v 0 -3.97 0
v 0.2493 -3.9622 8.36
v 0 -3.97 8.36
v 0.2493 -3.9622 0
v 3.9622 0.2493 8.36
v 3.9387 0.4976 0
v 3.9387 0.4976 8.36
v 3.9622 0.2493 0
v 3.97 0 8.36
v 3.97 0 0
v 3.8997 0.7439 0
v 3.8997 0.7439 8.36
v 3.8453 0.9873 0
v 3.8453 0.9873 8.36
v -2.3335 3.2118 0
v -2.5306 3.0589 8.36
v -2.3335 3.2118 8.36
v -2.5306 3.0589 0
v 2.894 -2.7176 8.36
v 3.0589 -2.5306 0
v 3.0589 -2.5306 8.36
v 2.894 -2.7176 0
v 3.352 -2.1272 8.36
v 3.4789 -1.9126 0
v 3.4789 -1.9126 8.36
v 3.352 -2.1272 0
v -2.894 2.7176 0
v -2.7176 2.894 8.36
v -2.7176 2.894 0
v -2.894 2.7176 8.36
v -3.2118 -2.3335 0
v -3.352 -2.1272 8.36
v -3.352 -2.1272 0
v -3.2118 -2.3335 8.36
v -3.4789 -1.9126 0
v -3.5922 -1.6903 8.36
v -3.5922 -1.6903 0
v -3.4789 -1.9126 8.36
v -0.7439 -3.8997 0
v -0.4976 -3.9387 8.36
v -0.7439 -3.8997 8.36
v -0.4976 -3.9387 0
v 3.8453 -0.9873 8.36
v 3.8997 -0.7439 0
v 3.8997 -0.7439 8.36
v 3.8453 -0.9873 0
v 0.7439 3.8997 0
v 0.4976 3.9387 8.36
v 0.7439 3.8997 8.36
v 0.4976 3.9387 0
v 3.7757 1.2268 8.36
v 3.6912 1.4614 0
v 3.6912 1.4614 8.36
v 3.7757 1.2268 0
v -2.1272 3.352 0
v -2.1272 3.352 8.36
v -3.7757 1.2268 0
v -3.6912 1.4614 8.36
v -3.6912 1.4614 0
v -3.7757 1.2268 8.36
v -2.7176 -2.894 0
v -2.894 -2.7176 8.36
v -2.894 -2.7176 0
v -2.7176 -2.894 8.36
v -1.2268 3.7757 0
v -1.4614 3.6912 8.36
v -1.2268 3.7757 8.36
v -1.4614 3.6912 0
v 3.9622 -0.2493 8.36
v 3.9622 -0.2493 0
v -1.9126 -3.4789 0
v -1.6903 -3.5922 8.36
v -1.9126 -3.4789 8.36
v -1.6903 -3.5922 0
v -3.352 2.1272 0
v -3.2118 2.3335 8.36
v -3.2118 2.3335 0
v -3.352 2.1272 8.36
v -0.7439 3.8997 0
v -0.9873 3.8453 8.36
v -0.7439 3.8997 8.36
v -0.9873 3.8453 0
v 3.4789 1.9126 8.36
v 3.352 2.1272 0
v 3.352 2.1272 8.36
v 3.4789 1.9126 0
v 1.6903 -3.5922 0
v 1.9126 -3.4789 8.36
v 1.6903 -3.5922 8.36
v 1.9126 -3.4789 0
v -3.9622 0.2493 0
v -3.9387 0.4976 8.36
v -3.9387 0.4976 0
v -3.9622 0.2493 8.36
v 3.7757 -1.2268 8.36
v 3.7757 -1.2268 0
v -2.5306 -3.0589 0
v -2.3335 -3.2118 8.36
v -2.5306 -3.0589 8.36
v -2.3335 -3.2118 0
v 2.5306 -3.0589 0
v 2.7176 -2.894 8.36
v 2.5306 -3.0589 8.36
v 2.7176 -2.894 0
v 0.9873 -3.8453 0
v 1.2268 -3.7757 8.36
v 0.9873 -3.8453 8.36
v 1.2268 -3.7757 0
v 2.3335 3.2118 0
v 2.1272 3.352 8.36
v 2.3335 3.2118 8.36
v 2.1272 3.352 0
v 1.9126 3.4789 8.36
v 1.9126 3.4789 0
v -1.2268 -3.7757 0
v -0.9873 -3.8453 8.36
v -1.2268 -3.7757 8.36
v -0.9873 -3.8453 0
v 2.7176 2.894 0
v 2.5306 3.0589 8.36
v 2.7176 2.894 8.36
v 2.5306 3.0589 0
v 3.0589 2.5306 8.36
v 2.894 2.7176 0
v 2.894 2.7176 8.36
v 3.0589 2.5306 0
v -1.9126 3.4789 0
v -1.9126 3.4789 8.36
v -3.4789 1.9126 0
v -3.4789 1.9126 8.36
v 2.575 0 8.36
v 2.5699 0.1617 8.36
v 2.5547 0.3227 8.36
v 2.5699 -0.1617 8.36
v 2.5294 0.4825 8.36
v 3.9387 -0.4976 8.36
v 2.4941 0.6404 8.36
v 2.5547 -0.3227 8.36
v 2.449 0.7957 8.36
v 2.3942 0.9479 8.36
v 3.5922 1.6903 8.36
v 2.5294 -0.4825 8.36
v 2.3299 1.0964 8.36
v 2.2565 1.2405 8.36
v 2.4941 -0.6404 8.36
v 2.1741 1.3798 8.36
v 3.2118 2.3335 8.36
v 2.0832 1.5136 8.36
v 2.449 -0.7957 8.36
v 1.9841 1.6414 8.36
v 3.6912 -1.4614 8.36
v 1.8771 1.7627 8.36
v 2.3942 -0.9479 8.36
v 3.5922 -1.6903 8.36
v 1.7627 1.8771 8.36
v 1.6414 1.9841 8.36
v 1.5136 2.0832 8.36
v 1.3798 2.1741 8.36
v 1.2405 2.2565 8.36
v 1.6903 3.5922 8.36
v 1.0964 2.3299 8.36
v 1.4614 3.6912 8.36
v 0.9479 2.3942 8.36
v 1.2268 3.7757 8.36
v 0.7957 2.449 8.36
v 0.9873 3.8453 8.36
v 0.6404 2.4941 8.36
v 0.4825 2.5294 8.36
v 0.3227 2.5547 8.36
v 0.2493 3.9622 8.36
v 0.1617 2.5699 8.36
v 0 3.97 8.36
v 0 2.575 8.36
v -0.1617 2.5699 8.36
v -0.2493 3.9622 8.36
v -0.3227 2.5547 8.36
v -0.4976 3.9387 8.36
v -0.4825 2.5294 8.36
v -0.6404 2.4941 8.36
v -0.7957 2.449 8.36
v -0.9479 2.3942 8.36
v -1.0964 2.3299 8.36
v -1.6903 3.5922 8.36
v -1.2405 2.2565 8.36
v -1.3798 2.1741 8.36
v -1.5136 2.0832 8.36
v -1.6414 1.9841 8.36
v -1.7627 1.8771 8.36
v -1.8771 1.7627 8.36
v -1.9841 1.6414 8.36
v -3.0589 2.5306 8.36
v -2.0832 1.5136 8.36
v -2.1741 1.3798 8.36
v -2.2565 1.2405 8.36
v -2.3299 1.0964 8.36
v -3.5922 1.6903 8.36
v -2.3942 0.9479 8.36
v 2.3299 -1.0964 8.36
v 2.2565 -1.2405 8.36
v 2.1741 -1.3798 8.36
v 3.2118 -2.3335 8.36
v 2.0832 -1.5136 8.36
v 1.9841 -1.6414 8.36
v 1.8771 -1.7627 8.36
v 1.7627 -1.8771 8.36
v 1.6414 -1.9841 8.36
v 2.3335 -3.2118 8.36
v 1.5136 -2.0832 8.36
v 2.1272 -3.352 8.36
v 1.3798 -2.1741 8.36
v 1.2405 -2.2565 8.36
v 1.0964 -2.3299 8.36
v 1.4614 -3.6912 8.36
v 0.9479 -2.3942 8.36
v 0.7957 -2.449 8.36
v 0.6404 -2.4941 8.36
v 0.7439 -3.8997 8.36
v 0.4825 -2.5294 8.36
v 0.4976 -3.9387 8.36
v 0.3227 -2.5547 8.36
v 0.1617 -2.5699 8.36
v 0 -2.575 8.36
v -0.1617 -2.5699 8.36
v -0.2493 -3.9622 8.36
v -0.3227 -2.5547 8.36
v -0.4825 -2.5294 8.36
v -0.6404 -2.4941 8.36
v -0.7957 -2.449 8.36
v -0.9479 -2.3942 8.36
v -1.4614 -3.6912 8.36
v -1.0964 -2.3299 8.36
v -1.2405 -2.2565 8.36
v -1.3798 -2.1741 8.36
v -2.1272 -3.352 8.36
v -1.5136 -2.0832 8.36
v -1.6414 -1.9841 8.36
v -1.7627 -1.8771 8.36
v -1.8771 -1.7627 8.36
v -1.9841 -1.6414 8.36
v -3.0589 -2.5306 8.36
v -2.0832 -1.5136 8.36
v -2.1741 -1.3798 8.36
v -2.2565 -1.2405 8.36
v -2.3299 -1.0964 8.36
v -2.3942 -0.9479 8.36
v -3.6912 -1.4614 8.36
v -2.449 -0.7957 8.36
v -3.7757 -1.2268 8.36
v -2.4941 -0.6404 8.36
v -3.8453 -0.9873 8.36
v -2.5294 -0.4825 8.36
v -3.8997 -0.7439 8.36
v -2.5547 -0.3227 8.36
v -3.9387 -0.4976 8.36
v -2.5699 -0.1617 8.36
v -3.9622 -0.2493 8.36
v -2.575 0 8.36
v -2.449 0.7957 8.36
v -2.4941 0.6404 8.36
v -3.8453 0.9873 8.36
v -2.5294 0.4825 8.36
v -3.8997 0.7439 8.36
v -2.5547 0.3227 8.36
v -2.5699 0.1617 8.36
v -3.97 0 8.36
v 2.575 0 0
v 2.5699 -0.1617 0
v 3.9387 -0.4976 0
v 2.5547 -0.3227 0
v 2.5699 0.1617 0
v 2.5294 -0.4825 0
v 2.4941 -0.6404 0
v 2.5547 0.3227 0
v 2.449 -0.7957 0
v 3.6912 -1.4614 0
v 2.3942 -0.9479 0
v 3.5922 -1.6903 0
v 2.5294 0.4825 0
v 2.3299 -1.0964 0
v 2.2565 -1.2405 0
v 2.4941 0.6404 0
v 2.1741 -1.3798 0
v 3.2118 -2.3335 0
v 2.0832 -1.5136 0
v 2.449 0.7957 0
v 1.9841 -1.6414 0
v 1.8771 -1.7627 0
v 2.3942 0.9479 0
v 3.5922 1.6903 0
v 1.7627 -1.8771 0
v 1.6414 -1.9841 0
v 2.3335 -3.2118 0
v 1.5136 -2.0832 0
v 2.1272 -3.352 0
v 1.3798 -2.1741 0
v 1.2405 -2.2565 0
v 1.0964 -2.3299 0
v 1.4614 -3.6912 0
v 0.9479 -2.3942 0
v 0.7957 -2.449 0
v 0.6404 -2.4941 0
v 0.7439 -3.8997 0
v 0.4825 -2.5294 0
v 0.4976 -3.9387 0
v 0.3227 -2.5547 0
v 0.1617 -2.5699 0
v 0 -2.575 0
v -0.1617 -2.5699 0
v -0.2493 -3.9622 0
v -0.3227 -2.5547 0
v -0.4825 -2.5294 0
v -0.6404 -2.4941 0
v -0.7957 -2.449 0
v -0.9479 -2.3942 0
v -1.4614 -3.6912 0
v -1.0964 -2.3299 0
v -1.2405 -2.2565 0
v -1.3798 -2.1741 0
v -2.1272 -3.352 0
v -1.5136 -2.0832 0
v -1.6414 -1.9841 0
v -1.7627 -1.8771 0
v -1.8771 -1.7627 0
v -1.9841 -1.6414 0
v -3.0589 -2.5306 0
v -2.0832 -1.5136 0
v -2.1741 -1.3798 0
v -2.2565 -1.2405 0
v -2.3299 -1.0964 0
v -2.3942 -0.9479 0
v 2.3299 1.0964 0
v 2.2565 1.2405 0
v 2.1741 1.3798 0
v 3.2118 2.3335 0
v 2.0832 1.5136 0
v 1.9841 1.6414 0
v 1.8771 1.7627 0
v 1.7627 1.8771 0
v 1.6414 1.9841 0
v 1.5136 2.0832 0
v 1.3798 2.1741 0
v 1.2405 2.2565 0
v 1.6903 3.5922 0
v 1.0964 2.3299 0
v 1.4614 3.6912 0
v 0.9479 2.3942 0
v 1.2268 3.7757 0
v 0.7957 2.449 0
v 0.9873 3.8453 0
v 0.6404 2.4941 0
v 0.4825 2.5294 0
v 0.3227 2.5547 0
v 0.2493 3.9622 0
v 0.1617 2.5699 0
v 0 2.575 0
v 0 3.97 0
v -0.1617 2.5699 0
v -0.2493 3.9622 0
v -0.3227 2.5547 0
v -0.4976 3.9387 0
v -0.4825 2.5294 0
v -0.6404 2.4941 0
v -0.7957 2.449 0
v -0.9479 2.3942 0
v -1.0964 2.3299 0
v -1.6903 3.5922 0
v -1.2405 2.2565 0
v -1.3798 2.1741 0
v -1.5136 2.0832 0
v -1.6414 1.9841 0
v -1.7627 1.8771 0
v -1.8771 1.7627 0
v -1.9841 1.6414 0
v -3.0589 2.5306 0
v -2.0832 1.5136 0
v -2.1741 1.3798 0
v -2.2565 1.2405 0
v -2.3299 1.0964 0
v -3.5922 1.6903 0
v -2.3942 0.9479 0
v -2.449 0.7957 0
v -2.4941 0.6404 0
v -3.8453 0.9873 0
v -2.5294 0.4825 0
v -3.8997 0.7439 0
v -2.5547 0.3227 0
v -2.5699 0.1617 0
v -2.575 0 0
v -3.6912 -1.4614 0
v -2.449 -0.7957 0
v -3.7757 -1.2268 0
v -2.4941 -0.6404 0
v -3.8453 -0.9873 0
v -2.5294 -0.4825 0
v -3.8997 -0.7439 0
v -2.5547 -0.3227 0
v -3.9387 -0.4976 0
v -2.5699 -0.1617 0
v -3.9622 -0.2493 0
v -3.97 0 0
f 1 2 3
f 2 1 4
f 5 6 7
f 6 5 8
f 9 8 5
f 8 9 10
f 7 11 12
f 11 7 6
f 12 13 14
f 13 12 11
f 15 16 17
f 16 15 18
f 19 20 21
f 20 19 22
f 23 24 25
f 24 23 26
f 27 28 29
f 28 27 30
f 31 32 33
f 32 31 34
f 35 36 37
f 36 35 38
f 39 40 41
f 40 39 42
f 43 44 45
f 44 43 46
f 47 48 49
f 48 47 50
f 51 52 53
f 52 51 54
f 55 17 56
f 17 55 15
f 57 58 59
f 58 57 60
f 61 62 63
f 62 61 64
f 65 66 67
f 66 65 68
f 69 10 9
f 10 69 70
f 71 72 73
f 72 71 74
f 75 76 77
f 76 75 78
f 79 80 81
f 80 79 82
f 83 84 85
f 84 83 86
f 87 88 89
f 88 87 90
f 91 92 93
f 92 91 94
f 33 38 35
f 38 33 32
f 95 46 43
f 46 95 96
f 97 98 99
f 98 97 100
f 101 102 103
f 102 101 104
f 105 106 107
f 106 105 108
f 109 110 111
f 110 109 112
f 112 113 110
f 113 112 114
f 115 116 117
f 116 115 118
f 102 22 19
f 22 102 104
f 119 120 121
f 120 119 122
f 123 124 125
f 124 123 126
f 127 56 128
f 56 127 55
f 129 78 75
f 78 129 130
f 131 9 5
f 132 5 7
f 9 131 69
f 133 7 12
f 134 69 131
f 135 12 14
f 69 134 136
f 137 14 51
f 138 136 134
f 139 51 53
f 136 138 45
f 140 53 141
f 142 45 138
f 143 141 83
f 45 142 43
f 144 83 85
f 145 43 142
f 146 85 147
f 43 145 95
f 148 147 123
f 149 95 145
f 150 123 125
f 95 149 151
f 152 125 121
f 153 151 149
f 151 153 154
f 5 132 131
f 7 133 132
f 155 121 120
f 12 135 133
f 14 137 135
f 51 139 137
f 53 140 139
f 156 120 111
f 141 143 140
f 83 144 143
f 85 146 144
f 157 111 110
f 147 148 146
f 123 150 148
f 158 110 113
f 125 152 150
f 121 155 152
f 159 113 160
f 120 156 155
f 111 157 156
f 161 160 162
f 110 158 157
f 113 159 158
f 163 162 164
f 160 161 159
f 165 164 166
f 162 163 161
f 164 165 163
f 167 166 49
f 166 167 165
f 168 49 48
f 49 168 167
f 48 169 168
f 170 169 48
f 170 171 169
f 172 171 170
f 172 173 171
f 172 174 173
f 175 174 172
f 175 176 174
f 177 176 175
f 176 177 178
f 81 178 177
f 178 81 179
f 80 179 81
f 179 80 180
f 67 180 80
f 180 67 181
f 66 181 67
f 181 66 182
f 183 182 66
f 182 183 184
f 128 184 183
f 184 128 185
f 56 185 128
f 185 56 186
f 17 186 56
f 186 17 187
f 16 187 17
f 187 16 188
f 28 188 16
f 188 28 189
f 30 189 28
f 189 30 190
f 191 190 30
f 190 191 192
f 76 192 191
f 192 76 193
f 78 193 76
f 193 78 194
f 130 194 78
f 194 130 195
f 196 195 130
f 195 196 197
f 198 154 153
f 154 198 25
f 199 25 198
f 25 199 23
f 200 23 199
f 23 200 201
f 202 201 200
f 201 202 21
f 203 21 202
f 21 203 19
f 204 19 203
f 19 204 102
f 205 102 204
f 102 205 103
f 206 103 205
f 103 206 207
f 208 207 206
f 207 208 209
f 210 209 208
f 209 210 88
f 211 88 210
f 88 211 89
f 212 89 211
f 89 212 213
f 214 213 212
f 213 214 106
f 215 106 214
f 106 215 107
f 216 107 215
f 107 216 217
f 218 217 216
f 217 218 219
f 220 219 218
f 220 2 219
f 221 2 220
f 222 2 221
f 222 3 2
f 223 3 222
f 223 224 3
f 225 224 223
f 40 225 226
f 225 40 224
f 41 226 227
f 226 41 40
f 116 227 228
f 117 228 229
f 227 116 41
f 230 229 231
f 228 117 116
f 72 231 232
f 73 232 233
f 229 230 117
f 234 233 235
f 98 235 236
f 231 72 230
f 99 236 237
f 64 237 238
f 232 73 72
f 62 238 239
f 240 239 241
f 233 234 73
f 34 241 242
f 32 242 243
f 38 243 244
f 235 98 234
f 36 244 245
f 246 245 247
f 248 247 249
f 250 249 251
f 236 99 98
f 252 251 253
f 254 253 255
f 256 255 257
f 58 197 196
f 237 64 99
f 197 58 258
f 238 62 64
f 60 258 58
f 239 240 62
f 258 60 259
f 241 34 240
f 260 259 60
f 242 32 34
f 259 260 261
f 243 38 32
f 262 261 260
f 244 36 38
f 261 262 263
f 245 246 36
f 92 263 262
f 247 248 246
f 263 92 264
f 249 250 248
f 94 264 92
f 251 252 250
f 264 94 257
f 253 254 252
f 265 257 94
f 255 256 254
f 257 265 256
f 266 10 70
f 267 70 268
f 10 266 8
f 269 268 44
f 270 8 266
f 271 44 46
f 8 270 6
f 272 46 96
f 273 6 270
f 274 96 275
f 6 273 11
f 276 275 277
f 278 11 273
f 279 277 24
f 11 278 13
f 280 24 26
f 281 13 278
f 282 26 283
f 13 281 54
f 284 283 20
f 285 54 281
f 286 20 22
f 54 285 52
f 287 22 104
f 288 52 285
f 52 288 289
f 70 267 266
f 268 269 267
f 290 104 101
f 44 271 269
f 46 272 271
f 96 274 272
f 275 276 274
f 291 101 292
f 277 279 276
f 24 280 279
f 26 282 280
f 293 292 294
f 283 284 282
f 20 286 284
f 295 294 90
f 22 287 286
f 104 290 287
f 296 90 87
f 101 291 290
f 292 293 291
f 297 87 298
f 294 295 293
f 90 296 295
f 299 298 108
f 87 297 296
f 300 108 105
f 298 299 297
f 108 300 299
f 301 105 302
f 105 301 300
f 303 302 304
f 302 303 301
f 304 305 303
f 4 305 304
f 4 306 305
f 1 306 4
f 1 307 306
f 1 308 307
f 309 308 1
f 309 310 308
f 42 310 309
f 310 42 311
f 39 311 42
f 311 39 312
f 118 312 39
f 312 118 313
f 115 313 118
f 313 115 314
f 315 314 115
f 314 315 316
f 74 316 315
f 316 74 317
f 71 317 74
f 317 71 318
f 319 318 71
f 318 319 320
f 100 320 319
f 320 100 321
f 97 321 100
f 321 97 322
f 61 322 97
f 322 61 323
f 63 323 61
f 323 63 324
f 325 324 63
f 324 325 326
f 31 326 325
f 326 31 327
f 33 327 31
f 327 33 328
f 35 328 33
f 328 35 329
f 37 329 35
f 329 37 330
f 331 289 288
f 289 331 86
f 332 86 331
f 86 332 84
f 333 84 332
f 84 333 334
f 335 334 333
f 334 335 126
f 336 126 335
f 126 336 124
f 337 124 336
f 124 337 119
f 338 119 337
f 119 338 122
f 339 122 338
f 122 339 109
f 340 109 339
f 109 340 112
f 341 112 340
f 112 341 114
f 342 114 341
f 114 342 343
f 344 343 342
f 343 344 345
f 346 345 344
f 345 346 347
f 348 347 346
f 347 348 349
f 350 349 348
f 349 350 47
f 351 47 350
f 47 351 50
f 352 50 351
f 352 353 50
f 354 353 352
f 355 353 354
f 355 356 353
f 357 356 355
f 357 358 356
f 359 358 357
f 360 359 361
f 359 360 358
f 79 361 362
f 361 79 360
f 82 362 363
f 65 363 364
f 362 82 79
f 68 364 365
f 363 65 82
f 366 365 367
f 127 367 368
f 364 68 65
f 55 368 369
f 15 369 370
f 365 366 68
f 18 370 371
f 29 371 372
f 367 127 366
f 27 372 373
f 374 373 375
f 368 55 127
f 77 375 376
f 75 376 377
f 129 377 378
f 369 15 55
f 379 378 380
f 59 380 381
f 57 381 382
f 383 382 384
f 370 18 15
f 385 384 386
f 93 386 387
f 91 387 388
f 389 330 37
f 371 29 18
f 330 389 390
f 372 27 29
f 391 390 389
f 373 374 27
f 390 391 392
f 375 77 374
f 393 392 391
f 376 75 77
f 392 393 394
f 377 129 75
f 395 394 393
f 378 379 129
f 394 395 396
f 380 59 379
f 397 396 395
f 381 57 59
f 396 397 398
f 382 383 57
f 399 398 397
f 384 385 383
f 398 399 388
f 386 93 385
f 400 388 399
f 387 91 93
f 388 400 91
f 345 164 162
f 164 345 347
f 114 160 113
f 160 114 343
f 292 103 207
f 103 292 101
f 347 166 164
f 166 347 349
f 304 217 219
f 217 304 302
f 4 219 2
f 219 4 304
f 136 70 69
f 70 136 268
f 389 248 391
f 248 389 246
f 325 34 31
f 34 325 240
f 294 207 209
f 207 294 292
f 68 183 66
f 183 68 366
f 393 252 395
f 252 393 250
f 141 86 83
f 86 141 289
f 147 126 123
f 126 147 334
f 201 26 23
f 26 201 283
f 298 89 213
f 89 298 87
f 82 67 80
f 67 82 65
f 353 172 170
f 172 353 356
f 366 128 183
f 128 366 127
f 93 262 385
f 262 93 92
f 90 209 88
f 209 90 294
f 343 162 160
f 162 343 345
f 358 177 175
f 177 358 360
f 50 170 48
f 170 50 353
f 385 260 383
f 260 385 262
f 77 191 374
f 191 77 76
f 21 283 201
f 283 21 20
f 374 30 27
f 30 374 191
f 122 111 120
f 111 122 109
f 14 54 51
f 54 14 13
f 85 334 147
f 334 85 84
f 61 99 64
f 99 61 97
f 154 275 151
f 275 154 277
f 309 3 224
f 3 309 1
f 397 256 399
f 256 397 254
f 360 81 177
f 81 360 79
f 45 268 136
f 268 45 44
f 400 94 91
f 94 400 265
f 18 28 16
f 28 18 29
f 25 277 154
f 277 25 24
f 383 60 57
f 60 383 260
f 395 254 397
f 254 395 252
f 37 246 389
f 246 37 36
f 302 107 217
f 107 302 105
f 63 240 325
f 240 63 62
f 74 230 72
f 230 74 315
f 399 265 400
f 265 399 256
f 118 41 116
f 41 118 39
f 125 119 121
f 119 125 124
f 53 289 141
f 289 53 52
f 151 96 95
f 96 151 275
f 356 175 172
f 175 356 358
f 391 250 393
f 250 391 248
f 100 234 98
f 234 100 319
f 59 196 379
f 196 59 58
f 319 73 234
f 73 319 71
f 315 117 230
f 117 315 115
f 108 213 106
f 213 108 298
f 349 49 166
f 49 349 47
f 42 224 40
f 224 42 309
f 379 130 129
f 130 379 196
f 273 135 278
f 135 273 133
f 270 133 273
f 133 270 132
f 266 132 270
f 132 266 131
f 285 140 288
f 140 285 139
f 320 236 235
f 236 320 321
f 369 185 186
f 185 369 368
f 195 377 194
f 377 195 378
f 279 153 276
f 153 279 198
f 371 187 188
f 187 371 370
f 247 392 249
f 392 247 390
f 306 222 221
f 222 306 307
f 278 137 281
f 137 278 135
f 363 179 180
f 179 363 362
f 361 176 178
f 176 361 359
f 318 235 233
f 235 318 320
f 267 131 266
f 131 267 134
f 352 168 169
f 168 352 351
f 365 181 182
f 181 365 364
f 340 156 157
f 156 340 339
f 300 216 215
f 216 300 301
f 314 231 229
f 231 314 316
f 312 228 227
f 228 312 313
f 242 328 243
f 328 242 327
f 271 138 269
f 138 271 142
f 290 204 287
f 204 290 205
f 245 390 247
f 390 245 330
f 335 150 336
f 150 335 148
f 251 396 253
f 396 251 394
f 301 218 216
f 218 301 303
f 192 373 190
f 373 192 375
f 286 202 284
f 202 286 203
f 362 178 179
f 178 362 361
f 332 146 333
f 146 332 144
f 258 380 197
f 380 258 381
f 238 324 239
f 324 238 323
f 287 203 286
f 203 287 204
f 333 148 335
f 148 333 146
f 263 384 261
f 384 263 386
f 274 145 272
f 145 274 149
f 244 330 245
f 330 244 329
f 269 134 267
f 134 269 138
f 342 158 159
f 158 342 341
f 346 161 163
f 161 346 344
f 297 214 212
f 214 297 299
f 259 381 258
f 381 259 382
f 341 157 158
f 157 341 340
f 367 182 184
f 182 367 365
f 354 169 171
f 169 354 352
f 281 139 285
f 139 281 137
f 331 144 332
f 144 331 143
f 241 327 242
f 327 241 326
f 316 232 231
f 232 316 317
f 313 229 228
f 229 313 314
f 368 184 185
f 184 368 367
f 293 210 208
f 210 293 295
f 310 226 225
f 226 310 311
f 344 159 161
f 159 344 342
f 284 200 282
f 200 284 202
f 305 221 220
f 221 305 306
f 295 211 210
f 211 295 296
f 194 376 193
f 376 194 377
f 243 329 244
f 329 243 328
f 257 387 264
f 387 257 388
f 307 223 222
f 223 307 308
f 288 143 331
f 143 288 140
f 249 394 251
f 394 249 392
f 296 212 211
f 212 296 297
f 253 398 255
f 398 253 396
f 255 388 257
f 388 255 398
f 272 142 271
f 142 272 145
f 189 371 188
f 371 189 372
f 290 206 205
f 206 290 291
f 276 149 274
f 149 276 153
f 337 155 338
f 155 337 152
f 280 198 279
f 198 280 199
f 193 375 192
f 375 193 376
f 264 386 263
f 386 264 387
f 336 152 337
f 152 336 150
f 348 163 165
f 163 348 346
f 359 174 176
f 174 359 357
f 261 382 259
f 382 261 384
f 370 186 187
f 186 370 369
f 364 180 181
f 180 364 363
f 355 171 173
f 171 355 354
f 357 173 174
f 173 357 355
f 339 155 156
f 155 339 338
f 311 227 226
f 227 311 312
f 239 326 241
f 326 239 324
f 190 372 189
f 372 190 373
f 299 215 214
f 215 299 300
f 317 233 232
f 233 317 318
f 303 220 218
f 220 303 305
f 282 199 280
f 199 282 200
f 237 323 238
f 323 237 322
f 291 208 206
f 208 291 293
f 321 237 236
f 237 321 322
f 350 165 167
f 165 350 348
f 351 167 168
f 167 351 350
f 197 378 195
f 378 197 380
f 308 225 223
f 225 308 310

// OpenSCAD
// Spacer Model Parameters
length = 8.36;      // Length of spacer in mm
outer_d = 7.94;     // Outer diameter in mm
inner_d = 5.15; // 5.08;     // Inner diameter in mm
smoothness = 100;   // High smoothness factor for cylinder faces

// Main spacer body
difference() {
  // Outer cylinder
  cylinder(
    h = length,
    d = outer_d,
    $fn = smoothness
  );

  // Inner hole (subtracted from outer cylinder)
  cylinder(
    h = length,
    d = inner_d,
    $fn = smoothness
  );
}
